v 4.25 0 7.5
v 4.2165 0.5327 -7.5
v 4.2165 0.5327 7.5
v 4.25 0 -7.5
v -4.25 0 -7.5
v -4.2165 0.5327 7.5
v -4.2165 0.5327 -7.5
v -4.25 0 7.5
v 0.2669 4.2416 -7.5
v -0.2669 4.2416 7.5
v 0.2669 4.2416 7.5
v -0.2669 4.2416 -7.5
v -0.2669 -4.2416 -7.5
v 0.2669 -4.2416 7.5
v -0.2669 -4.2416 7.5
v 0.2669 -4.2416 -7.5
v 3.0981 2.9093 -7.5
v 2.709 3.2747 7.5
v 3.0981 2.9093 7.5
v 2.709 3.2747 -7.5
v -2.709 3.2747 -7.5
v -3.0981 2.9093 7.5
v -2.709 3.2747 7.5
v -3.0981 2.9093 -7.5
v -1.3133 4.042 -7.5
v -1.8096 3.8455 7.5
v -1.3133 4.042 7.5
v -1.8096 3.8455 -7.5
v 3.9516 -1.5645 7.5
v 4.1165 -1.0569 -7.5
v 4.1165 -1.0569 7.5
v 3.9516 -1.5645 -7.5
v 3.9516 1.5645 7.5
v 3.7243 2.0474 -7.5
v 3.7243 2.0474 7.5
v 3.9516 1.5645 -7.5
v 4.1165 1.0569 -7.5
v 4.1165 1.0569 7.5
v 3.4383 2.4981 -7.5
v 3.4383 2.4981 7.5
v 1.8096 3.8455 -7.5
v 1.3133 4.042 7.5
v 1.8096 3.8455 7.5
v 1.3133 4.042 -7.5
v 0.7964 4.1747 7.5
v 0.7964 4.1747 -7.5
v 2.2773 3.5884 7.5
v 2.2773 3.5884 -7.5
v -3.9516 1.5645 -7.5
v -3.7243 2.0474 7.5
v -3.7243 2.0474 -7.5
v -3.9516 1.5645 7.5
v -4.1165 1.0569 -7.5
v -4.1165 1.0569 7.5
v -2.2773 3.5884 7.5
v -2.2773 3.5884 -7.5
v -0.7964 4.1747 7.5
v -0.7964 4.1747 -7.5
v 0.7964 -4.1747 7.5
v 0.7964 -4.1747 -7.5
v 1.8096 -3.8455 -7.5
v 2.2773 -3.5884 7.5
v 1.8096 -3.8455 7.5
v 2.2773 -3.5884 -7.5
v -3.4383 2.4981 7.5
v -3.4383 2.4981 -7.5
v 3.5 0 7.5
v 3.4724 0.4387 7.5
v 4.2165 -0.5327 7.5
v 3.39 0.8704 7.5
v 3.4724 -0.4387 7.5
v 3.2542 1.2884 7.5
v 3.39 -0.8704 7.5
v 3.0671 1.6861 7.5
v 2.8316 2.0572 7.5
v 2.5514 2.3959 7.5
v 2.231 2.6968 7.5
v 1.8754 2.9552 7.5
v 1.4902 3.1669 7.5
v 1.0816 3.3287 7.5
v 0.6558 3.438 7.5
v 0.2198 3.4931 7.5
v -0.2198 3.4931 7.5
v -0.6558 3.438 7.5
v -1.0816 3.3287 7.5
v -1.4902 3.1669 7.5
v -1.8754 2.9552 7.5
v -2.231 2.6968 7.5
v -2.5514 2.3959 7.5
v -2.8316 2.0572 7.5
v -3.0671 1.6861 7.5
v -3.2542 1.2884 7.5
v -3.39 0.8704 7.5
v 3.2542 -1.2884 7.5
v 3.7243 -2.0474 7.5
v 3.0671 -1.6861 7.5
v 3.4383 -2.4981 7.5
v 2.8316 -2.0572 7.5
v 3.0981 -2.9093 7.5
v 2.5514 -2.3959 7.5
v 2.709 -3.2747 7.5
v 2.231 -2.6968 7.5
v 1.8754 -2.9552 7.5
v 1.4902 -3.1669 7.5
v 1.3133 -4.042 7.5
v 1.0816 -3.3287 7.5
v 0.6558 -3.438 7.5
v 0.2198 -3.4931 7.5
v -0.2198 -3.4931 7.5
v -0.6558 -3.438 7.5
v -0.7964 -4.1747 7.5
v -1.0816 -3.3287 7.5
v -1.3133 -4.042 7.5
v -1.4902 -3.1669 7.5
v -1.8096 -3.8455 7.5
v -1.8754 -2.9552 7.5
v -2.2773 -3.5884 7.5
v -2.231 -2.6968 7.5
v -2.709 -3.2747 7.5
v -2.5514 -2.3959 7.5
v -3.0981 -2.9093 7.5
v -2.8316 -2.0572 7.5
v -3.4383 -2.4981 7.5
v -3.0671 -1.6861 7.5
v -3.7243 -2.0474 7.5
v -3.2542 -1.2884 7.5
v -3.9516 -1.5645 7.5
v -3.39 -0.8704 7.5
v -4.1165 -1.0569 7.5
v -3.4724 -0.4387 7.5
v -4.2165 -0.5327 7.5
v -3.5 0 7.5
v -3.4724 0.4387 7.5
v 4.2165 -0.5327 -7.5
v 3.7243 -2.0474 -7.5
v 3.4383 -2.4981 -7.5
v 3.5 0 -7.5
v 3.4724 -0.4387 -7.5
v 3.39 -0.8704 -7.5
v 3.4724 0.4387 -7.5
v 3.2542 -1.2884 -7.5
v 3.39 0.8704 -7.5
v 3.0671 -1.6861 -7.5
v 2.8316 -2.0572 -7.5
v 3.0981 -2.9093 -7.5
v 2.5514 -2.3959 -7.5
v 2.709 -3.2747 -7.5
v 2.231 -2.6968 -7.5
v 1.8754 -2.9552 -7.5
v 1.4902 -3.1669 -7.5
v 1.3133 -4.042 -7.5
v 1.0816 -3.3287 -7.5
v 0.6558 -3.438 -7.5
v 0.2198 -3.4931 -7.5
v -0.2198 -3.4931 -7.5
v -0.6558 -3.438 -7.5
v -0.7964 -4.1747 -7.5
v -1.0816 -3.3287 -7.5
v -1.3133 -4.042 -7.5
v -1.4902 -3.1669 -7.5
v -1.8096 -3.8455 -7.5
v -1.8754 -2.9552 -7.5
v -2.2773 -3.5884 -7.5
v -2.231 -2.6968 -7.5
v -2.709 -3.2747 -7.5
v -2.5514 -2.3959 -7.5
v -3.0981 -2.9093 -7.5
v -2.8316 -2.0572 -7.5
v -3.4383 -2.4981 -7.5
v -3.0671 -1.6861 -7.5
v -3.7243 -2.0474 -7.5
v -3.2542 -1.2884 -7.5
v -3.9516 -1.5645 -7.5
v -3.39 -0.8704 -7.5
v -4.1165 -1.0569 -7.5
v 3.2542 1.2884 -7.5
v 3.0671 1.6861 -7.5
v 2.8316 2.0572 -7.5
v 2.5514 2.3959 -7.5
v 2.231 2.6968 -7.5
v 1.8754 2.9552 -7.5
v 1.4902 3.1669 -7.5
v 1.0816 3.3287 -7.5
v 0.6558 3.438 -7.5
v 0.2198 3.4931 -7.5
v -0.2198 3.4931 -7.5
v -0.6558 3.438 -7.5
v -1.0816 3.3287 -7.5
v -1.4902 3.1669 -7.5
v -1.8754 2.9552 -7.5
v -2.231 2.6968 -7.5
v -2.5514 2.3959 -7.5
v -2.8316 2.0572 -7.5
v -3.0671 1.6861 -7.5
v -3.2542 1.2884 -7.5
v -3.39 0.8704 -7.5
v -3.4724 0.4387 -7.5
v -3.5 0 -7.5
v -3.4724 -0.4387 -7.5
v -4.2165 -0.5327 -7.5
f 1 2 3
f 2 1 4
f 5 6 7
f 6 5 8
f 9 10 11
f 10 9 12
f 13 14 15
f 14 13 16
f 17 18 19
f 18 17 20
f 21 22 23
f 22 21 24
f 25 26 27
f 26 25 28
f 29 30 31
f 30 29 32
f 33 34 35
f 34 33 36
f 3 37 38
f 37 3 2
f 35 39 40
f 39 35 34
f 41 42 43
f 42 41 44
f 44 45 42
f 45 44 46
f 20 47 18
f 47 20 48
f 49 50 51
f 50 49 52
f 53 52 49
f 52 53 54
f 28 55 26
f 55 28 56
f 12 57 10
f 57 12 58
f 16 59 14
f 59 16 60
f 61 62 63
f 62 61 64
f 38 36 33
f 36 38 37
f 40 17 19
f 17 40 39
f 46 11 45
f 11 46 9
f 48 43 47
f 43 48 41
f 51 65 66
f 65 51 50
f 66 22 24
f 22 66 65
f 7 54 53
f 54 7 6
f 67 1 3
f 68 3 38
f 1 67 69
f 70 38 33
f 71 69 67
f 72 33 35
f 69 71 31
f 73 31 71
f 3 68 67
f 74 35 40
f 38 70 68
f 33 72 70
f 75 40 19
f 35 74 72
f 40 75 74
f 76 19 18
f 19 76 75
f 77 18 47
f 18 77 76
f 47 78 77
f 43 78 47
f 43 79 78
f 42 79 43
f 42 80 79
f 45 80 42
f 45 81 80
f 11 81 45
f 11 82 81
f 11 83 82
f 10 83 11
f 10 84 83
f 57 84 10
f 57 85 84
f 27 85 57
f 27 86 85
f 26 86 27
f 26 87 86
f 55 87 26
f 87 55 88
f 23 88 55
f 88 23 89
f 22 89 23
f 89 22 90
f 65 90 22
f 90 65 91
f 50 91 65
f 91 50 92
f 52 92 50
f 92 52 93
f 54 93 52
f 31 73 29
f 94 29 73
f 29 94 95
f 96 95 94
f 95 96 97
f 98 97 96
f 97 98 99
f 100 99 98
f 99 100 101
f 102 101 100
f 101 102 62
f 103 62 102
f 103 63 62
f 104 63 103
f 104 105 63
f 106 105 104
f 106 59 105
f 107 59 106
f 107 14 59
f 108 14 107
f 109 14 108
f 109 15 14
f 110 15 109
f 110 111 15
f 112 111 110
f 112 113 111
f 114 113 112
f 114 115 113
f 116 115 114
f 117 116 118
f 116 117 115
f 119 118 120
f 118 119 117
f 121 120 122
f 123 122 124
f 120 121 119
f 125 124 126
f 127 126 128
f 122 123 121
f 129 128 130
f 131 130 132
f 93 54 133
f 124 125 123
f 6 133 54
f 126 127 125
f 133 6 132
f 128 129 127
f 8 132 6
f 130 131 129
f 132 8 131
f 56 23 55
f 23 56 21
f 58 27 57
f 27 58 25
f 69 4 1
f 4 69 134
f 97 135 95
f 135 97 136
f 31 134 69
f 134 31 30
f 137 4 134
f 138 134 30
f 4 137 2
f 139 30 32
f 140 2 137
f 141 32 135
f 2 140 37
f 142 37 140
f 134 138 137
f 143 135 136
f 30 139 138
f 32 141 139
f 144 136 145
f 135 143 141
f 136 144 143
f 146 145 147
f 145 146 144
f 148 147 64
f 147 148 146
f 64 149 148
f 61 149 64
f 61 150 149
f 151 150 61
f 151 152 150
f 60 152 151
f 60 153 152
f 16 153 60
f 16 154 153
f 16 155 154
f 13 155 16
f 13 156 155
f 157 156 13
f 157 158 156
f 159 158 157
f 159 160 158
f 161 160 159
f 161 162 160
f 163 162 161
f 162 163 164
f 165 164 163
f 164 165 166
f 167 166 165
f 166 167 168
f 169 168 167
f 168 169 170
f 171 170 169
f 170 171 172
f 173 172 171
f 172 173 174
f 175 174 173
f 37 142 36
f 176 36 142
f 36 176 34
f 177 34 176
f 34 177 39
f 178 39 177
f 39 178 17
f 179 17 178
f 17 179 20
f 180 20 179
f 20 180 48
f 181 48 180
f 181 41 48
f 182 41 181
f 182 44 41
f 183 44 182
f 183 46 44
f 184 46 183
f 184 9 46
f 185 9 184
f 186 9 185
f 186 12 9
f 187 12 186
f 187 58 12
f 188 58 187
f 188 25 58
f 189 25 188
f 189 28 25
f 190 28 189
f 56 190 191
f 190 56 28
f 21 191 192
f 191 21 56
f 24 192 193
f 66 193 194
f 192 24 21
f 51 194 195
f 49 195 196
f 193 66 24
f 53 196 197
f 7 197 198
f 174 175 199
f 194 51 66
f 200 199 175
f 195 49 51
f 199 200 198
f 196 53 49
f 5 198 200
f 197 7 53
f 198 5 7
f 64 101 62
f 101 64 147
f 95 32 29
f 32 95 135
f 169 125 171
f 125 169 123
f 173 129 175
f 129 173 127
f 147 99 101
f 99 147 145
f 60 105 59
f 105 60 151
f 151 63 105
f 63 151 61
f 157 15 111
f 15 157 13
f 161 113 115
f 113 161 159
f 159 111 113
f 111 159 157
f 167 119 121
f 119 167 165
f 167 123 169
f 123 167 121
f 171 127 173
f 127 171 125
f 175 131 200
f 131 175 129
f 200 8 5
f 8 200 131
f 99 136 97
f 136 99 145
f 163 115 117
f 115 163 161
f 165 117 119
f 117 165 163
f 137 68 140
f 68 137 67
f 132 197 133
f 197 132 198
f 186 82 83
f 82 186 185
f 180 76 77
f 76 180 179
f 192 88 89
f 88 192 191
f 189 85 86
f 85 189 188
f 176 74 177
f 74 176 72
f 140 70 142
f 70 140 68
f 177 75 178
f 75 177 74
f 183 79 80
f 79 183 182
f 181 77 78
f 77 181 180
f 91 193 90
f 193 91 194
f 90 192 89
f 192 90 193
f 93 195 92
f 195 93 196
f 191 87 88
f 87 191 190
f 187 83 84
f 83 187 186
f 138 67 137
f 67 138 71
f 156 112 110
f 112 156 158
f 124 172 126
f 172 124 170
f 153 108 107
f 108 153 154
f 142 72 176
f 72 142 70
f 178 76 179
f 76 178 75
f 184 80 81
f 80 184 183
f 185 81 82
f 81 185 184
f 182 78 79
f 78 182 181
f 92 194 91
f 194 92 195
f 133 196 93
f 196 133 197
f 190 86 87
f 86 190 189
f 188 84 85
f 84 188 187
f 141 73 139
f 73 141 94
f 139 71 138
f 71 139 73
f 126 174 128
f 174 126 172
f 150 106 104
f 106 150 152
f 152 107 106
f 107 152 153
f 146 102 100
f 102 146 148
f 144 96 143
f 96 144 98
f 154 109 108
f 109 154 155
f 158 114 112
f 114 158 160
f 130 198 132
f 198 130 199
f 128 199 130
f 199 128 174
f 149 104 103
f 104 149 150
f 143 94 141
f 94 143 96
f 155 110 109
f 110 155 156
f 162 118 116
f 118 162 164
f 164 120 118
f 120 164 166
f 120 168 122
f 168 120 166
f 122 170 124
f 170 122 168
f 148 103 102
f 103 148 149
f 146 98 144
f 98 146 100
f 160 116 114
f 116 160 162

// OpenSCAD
$fn = 50;


difference() {
	union() {
		translate(v = [0, 0, -7.5000000000]) {
			cylinder(h = 15, r = 4.2500000000);
		}
	}
	union() {
		translate(v = [0, 0, -100.0000000000]) {
			cylinder(h = 200, r = 3.5000000000);
		}
	}
}
